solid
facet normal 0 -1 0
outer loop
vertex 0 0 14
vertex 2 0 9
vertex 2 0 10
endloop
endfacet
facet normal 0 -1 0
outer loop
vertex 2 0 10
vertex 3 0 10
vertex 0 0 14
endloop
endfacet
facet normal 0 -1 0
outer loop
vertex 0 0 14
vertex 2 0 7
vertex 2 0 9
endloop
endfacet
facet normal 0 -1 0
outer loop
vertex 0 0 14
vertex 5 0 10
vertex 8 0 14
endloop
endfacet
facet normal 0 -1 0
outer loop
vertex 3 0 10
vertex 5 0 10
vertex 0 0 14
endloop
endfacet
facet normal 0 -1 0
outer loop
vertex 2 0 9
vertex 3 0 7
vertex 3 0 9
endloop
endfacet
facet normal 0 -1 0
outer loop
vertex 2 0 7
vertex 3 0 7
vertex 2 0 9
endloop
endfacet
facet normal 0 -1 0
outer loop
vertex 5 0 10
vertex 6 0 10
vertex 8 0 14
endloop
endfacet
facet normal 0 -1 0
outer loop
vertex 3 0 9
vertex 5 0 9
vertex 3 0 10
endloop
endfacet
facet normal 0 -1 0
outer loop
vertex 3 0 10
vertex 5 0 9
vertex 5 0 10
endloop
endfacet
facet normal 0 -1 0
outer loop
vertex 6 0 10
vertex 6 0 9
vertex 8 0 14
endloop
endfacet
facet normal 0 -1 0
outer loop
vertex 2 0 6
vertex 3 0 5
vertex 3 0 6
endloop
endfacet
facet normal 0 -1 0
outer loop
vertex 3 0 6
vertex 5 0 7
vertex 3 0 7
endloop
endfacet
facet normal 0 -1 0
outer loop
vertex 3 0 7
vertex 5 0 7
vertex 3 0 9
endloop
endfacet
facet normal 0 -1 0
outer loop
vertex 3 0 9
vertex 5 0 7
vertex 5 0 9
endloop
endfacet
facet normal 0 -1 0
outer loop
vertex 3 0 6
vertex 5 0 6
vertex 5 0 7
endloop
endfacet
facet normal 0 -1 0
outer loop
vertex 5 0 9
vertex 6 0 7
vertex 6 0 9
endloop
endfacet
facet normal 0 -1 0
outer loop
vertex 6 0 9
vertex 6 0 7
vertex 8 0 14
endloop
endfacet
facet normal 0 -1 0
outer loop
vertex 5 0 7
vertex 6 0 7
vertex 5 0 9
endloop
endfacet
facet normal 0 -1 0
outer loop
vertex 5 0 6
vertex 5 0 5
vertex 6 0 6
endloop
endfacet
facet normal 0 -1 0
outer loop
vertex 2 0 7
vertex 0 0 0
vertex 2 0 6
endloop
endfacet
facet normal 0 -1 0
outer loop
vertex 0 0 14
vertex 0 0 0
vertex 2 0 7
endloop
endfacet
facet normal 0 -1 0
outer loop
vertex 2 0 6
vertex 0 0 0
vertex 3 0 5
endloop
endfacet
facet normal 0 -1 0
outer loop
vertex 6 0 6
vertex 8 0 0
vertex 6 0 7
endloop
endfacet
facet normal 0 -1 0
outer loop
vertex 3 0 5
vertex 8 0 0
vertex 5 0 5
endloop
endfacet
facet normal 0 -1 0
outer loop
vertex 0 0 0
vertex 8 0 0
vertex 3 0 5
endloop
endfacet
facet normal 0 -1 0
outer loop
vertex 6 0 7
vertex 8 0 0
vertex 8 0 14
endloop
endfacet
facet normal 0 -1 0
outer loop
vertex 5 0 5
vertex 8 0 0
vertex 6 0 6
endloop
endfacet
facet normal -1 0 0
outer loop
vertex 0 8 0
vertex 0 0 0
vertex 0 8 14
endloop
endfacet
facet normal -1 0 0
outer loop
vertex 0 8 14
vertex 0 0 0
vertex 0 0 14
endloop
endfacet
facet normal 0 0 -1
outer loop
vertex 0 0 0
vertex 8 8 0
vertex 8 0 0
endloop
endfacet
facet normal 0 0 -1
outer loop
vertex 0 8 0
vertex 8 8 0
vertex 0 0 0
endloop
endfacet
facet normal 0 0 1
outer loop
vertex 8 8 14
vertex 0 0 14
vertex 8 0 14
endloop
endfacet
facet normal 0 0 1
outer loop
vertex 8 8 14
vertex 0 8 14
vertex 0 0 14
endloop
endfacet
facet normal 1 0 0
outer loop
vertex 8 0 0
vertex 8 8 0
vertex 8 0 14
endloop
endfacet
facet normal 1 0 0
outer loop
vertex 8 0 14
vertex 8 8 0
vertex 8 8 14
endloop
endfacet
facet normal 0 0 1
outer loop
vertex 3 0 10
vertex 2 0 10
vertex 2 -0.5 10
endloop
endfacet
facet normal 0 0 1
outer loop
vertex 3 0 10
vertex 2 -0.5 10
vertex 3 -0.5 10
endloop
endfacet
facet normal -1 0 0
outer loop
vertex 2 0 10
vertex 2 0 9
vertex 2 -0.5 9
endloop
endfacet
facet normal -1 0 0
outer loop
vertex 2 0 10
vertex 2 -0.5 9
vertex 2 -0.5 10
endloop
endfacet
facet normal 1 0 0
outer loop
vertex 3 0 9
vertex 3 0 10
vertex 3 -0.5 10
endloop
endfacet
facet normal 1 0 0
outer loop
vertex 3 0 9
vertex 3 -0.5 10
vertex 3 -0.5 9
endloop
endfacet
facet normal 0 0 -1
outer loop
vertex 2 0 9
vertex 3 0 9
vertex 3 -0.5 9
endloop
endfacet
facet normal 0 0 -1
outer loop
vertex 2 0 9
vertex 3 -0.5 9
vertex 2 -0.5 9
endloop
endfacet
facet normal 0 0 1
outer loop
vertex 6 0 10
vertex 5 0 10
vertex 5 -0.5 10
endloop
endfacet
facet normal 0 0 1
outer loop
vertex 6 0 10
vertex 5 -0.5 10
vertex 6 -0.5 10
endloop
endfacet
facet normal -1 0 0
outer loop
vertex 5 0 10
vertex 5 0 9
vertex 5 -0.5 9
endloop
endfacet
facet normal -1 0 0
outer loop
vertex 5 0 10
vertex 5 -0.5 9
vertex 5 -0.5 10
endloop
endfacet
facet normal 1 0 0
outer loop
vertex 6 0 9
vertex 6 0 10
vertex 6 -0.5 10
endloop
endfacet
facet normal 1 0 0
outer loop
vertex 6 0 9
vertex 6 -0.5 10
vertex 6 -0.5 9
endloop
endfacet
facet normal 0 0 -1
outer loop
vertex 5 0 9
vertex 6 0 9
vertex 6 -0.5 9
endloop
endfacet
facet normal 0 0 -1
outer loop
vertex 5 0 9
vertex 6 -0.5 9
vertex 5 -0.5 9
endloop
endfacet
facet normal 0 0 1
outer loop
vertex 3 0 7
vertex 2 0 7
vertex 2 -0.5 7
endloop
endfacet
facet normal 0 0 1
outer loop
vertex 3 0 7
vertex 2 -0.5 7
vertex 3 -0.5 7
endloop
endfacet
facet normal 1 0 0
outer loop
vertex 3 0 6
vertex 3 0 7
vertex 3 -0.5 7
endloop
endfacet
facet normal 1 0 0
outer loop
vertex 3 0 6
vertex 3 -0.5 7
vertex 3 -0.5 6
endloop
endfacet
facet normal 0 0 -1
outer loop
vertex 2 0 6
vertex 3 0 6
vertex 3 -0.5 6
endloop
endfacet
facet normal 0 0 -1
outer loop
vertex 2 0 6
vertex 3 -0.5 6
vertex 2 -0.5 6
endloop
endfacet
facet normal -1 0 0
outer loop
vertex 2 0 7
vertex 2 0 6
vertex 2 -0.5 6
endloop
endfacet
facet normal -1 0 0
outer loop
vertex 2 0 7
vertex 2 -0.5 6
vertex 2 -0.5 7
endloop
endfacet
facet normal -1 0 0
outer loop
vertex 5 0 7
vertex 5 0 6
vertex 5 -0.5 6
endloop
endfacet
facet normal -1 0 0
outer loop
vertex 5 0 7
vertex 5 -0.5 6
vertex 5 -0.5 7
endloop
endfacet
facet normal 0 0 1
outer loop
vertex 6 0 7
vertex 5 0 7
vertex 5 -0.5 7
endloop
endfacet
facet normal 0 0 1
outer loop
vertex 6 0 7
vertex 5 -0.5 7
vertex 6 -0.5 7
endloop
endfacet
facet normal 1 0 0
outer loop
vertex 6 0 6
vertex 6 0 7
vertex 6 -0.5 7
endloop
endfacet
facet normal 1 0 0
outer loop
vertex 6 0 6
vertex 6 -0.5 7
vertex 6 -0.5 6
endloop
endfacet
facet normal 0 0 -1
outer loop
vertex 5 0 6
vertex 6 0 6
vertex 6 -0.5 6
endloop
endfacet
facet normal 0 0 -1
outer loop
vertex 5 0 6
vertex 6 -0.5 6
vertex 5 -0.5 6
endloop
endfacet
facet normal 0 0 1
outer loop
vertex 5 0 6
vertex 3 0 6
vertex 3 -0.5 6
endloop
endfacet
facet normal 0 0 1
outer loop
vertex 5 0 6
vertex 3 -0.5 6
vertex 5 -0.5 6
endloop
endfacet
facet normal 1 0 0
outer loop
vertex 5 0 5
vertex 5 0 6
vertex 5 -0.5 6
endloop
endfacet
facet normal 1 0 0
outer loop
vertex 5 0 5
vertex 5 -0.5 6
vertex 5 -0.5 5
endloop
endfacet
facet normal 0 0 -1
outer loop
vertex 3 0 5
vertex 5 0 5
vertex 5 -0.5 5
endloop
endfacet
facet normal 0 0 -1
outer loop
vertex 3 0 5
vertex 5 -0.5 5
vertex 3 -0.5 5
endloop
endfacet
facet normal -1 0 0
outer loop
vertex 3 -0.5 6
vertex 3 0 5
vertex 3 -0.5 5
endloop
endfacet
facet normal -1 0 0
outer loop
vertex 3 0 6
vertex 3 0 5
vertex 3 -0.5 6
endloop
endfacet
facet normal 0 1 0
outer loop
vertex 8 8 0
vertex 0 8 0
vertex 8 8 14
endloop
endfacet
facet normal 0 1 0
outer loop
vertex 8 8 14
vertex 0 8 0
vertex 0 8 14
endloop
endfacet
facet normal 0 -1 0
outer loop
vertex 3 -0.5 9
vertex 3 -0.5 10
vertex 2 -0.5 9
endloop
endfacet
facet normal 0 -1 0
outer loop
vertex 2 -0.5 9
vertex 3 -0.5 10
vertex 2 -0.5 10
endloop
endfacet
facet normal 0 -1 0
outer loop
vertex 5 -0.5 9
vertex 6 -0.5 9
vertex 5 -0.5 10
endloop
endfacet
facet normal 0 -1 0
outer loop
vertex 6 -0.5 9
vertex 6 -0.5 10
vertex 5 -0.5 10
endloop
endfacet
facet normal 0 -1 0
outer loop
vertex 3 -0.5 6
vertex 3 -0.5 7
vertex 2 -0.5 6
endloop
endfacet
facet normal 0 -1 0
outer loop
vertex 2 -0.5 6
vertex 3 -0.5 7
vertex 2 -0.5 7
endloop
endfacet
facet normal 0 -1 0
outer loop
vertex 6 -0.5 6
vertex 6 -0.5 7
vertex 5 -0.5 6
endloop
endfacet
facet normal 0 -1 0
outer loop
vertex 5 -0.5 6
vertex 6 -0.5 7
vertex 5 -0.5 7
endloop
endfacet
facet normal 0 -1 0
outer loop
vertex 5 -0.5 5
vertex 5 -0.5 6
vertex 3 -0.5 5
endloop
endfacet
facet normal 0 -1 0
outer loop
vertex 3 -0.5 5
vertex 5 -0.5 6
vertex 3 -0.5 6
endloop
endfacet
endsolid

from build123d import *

# Parameters (mm, degrees)
SKETCH_W     = 8
SKETCH_H     = 8
PAD_DEPTH    = 14
SKETCH001_W  = 1
SKETCH001_H  = 1
PAD001_DEPTH = 0.5
SKETCH002_W  = 2
SKETCH002_H  = 1
PAD002_DEPTH = 0.5


with BuildPart() as part:
    # Sketch → Pad (new body)
    with BuildSketch(Plane.XY):
        with Locations((4, 4)):
            Rectangle(SKETCH_W, SKETCH_H)
    extrude(amount=PAD_DEPTH)

    # Sketch001 (on Face1 of Pad) → Pad001 (join)
    with BuildSketch(Plane.XZ):
        with Locations((2.5, 9.5)):
            Rectangle(SKETCH001_W, SKETCH001_H)
        with Locations((5.5, 9.5)):
            Rectangle(SKETCH001_W, SKETCH001_H)
        with Locations((2.5, 6.5)):
            Rectangle(SKETCH001_W, SKETCH001_H)
        with Locations((5.5, 6.5)):
            Rectangle(SKETCH001_W, SKETCH001_H)
    extrude(amount=PAD001_DEPTH)

    # Sketch002 (on Face1 of Pad001) → Pad002 (join)
    with BuildSketch(Plane.XZ):
        with Locations((4, 5.5)):
            Rectangle(SKETCH002_W, SKETCH002_H)
    extrude(amount=PAD002_DEPTH)


solid = part.part
